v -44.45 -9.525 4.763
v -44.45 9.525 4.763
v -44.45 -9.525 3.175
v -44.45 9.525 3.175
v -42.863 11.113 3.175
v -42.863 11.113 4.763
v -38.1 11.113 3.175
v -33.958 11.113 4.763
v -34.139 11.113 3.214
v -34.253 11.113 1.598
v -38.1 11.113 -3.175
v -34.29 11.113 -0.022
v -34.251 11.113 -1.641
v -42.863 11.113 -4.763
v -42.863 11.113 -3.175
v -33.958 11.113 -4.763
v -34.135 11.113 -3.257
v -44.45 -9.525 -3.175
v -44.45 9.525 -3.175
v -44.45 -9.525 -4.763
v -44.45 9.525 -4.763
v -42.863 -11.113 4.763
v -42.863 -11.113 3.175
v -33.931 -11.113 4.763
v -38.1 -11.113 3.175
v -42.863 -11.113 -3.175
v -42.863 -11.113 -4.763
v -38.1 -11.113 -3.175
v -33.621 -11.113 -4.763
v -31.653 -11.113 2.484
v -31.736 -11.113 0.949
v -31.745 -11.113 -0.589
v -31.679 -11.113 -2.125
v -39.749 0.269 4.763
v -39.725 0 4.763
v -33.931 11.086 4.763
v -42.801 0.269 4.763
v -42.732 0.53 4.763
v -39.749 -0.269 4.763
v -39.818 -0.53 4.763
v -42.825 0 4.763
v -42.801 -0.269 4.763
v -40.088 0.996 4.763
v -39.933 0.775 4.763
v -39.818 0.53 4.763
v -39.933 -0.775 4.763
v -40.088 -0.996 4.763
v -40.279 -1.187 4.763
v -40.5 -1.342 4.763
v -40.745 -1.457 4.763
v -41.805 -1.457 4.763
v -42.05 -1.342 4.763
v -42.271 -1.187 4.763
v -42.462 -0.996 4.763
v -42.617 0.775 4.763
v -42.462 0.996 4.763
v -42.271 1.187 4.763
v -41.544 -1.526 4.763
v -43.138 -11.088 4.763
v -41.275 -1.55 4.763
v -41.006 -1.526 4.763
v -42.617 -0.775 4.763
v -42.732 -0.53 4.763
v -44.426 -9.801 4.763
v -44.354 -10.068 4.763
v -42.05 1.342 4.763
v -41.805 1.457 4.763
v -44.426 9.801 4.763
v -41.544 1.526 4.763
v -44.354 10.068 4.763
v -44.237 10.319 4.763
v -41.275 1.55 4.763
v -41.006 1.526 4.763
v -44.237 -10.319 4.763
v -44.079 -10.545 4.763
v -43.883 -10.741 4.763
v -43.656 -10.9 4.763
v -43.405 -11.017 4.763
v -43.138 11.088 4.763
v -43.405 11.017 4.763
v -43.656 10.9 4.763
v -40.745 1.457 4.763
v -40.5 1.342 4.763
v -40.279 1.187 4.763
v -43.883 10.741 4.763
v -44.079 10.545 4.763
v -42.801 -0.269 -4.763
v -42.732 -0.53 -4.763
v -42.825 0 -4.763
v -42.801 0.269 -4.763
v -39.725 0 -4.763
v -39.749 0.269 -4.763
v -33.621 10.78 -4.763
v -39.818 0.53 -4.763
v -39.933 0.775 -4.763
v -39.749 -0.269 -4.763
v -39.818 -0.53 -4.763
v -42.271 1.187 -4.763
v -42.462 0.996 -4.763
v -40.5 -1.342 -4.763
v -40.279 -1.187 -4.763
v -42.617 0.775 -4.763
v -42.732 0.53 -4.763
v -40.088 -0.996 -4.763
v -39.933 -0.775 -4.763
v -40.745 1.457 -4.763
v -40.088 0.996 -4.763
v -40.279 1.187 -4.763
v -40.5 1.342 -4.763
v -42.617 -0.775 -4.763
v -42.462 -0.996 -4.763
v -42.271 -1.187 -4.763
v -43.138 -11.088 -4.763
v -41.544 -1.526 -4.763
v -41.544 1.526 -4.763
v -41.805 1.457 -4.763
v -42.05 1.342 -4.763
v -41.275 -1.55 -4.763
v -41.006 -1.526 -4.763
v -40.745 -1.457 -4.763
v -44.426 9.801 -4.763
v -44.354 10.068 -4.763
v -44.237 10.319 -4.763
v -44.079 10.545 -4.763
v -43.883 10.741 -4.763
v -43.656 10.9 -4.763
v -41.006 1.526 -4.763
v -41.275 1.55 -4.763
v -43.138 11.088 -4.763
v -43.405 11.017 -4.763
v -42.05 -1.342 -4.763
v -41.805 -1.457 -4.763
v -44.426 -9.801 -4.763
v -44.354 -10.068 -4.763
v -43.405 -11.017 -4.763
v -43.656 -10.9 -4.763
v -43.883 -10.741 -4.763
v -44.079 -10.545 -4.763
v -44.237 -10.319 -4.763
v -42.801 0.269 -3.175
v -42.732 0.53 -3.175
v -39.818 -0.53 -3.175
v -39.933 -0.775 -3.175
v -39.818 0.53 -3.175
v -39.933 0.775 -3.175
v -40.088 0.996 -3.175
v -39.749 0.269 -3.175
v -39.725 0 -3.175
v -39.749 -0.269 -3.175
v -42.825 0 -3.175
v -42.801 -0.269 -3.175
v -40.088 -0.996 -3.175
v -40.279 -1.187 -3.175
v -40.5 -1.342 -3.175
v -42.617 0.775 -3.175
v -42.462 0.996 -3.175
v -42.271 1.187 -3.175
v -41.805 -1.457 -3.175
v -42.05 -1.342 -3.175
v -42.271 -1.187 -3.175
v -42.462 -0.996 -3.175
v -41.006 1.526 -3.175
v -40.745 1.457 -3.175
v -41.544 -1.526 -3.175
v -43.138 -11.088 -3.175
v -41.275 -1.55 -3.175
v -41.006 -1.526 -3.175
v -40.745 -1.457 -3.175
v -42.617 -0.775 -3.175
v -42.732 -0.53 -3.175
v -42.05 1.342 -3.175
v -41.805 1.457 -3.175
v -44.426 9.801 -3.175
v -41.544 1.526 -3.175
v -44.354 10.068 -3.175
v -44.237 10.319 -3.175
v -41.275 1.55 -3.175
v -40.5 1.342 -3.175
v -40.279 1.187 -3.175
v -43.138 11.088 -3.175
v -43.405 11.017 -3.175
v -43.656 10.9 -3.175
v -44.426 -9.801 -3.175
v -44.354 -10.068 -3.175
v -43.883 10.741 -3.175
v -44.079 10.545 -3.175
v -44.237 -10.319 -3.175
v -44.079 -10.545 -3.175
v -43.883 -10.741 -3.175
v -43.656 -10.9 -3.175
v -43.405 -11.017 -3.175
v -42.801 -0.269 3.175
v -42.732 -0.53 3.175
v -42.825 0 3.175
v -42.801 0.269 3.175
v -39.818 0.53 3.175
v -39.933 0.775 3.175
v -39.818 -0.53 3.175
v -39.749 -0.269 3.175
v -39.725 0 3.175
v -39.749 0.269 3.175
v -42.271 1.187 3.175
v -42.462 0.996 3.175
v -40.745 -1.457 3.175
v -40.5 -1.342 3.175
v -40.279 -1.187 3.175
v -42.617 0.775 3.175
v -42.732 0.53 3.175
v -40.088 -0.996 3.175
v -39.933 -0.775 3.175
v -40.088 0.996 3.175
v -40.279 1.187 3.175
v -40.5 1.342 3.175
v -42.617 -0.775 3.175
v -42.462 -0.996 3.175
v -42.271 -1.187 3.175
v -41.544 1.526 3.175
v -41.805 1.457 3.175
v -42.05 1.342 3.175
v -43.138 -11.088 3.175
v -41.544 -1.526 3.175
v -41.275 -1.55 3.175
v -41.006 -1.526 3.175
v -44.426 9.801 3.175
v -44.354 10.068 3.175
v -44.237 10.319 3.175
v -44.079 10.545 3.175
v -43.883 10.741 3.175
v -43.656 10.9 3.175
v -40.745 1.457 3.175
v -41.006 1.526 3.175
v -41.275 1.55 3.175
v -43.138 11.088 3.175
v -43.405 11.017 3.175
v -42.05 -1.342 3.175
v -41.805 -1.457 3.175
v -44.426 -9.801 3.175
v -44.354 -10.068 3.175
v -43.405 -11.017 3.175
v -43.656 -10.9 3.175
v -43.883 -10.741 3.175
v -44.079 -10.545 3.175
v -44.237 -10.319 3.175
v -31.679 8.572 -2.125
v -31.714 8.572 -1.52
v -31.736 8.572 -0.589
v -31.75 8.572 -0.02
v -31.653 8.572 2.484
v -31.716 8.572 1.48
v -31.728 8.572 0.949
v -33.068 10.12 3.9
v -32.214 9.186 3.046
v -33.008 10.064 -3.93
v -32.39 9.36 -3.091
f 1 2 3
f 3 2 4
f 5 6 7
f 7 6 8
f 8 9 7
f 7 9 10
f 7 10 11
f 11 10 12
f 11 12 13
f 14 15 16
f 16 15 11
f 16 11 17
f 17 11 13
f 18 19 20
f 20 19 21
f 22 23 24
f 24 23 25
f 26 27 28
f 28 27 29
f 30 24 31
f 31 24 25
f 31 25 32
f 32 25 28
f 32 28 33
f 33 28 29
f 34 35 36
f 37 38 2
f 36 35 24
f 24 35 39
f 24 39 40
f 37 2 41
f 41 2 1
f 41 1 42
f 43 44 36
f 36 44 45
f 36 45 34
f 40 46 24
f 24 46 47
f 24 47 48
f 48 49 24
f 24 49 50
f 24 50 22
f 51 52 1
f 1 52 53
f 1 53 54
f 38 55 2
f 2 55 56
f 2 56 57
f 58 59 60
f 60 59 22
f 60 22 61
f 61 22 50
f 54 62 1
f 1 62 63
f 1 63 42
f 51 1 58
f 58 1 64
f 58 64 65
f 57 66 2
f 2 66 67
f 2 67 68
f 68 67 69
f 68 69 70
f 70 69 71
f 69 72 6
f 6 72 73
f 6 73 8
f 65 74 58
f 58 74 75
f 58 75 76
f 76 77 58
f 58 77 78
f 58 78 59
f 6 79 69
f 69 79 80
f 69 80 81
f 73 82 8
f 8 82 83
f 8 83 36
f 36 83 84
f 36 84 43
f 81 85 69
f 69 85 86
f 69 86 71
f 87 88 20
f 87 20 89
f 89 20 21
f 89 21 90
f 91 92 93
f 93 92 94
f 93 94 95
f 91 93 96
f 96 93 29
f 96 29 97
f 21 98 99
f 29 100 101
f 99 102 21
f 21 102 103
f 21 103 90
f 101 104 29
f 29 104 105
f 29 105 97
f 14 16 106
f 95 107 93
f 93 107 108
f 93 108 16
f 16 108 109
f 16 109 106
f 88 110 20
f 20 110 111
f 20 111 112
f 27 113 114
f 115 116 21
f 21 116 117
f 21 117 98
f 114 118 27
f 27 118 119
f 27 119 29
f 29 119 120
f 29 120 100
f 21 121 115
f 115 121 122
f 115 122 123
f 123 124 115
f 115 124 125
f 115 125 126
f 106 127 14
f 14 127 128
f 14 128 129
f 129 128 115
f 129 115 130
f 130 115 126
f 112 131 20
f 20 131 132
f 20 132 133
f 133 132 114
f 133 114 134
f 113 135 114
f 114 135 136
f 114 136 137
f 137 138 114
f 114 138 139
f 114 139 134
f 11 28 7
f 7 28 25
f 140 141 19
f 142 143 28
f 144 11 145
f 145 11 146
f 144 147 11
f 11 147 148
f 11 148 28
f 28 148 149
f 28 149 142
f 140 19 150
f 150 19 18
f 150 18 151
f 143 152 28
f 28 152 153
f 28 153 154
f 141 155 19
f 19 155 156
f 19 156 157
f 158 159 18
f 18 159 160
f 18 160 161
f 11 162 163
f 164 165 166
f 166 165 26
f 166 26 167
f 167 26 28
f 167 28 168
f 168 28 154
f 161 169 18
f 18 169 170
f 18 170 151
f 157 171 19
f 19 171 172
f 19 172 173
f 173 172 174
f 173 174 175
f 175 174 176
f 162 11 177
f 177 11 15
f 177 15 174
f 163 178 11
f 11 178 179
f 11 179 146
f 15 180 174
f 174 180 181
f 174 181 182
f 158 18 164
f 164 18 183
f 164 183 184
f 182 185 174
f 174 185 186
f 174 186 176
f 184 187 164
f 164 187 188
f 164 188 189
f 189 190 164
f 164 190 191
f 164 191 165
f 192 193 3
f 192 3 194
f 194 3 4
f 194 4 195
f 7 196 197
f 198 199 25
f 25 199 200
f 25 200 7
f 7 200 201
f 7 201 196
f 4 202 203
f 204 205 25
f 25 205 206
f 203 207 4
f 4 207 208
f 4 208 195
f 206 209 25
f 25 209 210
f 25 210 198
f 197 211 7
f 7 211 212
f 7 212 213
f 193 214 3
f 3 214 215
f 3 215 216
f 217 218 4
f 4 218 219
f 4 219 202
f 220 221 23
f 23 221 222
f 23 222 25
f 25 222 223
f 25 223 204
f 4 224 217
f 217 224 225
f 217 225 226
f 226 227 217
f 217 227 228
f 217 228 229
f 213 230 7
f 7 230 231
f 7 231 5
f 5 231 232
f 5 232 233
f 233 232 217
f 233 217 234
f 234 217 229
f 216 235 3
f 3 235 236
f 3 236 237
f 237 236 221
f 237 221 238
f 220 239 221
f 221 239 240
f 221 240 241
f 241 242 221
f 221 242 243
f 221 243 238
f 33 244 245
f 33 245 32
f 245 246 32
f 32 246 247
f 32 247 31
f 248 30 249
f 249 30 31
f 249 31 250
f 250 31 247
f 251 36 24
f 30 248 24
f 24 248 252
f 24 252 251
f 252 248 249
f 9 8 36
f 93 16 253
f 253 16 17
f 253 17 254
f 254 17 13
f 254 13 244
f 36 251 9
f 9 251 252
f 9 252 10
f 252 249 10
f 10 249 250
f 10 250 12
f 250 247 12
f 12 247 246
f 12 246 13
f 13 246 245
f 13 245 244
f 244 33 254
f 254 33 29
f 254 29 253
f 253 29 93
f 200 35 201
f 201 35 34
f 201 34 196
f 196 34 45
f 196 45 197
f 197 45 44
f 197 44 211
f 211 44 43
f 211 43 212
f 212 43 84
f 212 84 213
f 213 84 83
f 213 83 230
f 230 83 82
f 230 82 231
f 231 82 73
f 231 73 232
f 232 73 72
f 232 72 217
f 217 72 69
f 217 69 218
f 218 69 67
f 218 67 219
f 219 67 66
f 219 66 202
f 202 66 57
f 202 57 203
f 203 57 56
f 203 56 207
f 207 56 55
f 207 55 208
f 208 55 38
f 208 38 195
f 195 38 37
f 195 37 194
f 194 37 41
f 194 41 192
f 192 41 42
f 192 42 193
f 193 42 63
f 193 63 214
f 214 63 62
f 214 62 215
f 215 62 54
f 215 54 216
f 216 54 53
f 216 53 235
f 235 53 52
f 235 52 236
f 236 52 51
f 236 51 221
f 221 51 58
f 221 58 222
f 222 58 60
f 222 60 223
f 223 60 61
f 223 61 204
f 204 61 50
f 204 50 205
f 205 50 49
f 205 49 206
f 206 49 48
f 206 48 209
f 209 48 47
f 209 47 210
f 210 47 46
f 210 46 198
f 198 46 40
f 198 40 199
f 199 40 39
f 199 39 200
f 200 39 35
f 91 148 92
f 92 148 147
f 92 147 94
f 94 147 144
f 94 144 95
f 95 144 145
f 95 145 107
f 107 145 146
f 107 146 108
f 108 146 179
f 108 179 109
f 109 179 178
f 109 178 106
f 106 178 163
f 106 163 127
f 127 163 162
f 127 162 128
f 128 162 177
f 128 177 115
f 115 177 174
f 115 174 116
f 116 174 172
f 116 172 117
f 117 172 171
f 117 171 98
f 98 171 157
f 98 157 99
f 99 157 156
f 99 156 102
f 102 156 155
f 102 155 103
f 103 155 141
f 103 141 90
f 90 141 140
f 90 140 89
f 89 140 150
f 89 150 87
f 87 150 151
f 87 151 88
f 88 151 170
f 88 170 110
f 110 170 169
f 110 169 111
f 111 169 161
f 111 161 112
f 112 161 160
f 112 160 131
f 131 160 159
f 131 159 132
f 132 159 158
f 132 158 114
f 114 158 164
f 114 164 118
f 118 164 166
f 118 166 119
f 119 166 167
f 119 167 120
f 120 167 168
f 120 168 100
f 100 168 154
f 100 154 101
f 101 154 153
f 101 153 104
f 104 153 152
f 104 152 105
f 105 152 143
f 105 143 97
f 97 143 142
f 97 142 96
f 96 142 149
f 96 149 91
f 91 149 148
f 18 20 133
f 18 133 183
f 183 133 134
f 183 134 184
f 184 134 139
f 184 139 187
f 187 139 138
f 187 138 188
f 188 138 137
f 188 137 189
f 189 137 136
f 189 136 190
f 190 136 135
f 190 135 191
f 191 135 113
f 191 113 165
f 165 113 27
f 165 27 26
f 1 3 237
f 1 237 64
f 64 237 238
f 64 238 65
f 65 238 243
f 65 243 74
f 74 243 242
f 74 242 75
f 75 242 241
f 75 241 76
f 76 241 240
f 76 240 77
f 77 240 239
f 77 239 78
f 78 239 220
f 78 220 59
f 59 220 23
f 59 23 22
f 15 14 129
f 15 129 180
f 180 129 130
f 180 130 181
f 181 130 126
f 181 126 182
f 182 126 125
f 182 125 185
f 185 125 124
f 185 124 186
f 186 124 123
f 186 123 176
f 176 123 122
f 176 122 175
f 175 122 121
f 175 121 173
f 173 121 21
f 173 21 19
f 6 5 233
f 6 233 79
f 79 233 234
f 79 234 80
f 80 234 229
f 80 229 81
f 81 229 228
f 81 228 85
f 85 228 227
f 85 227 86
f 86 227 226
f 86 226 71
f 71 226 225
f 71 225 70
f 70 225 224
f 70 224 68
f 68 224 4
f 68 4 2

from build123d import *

# Parameters (mm, degrees)
SKETCH1_W           = 15.875
SKETCH1_H           = 22.225
BOSS_EXTRUDE1_DEPTH = 4.7625
SKETCH2_W           = 6.35
SKETCH2_H           = 22.225
CUT_EXTRUDE1_DEPTH  = 3.175
SKETCH3_R           = 31.75
CUT_EXTRUDE2_DEPTH  = 50.924287989
CHAMFER1_SIZE       = 2.23064129
CHAMFER1_SIZE_2     = 2.54
SKETCH4_R           = 1.55
CUT_EXTRUDE3_DEPTH  = 47.797604439
FILLET1_R           = 1.5875


with BuildPart() as part:
    # Sketch1 → Boss-Extrude1 (new, symmetric)
    with BuildSketch(Plane.XY):
        with Locations((-36.5125, 0)):
            Rectangle(SKETCH1_W, SKETCH1_H)
    extrude(amount=BOSS_EXTRUDE1_DEPTH, both=True)

    # Sketch2 → Cut-Extrude1 (cut, symmetric)
    with BuildSketch(Plane.XY):
        with Locations((-41.275, 0)):
            Rectangle(SKETCH2_W, SKETCH2_H)
    extrude(amount=CUT_EXTRUDE1_DEPTH, both=True, mode=Mode.SUBTRACT)

    # Sketch3 → Cut-Extrude2 (cut, through all)
    with BuildSketch(Plane(origin=(0, 11.1125, 0), x_dir=(1, 0, 0), z_dir=(0, 1, 0))):
        Circle(SKETCH3_R)
    extrude(amount=-CUT_EXTRUDE2_DEPTH, mode=Mode.SUBTRACT)

    # Chamfer1
    # the kernel refuses this chamfer: 2.54, 2.23064129 mm, written as the material it takes off along each edge
    with BuildSketch(Plane(origin=(-31.390780394, -17.93455078, -4.7625), x_dir=(-1, 0, 0), z_dir=(0, 1, 0))) as chamfer1_piece_1:
        with BuildLine():
            Line((CHAMFER1_SIZE, 0), (0.288027051, 2.637492029))
            ThreePointArc((0.288027051, 2.637492029), (0.17562072, 1.352980867), (0, 0))
            Line((0, 0), (CHAMFER1_SIZE, 0))
        make_face()
    extrude(amount=35.86910156, mode=Mode.SUBTRACT)
    with BuildSketch(Plane(origin=(-31.390780394, -17.644574789, 4.7625), x_dir=(-1, 0, 0), z_dir=(0, 1, 0))) as chamfer1_piece_2:
        with BuildLine():
            Line((CHAMFER1_SIZE_2, 0), (0.261871886, -2.278128114))
            ThreePointArc((0.261871886, -2.278128114), (0.155107804, -1.168138054), (0, 0))
            Line((0, 0), (CHAMFER1_SIZE_2, 0))
        make_face()
    extrude(amount=35.289149579, mode=Mode.SUBTRACT)
    with BuildSketch(Plane(origin=(0, 11.1125, 0), x_dir=(-0.9371917542835735, 0, -0.34881458642504903), z_dir=(0.34881458642504903, 0, -0.9371917542835735))) as chamfer1_piece_3:
        Polygon((31.75 + CHAMFER1_SIZE_2, 0), (31.75, -CHAMFER1_SIZE_2), (31.75, 0), align=None)
    revolve(axis=Axis((0, 11.1125, 0), (0, 1, 0)), revolution_arc=40.829654119, mode=Mode.SUBTRACT)

    # Sketch4 → Cut-Extrude3 (cut, through all)
    with BuildSketch(Plane.XY.offset(4.7625)):
        with Locations((-41.275, 0)):
            Circle(SKETCH4_R)
    extrude(amount=-CUT_EXTRUDE3_DEPTH, mode=Mode.SUBTRACT)

    # Fillet1
    fillet1_edges = [part.edges().sort_by_distance(p)[0] for p in [
        (-44.45, -11.1125, -3.96875),
        (-44.45, 11.1125, -3.96875),
        (-44.45, -11.1125, 3.96875),
        (-44.45, 11.1125, 3.96875),
    ]]
    fillet(fillet1_edges, radius=FILLET1_R)


solid = part.part
